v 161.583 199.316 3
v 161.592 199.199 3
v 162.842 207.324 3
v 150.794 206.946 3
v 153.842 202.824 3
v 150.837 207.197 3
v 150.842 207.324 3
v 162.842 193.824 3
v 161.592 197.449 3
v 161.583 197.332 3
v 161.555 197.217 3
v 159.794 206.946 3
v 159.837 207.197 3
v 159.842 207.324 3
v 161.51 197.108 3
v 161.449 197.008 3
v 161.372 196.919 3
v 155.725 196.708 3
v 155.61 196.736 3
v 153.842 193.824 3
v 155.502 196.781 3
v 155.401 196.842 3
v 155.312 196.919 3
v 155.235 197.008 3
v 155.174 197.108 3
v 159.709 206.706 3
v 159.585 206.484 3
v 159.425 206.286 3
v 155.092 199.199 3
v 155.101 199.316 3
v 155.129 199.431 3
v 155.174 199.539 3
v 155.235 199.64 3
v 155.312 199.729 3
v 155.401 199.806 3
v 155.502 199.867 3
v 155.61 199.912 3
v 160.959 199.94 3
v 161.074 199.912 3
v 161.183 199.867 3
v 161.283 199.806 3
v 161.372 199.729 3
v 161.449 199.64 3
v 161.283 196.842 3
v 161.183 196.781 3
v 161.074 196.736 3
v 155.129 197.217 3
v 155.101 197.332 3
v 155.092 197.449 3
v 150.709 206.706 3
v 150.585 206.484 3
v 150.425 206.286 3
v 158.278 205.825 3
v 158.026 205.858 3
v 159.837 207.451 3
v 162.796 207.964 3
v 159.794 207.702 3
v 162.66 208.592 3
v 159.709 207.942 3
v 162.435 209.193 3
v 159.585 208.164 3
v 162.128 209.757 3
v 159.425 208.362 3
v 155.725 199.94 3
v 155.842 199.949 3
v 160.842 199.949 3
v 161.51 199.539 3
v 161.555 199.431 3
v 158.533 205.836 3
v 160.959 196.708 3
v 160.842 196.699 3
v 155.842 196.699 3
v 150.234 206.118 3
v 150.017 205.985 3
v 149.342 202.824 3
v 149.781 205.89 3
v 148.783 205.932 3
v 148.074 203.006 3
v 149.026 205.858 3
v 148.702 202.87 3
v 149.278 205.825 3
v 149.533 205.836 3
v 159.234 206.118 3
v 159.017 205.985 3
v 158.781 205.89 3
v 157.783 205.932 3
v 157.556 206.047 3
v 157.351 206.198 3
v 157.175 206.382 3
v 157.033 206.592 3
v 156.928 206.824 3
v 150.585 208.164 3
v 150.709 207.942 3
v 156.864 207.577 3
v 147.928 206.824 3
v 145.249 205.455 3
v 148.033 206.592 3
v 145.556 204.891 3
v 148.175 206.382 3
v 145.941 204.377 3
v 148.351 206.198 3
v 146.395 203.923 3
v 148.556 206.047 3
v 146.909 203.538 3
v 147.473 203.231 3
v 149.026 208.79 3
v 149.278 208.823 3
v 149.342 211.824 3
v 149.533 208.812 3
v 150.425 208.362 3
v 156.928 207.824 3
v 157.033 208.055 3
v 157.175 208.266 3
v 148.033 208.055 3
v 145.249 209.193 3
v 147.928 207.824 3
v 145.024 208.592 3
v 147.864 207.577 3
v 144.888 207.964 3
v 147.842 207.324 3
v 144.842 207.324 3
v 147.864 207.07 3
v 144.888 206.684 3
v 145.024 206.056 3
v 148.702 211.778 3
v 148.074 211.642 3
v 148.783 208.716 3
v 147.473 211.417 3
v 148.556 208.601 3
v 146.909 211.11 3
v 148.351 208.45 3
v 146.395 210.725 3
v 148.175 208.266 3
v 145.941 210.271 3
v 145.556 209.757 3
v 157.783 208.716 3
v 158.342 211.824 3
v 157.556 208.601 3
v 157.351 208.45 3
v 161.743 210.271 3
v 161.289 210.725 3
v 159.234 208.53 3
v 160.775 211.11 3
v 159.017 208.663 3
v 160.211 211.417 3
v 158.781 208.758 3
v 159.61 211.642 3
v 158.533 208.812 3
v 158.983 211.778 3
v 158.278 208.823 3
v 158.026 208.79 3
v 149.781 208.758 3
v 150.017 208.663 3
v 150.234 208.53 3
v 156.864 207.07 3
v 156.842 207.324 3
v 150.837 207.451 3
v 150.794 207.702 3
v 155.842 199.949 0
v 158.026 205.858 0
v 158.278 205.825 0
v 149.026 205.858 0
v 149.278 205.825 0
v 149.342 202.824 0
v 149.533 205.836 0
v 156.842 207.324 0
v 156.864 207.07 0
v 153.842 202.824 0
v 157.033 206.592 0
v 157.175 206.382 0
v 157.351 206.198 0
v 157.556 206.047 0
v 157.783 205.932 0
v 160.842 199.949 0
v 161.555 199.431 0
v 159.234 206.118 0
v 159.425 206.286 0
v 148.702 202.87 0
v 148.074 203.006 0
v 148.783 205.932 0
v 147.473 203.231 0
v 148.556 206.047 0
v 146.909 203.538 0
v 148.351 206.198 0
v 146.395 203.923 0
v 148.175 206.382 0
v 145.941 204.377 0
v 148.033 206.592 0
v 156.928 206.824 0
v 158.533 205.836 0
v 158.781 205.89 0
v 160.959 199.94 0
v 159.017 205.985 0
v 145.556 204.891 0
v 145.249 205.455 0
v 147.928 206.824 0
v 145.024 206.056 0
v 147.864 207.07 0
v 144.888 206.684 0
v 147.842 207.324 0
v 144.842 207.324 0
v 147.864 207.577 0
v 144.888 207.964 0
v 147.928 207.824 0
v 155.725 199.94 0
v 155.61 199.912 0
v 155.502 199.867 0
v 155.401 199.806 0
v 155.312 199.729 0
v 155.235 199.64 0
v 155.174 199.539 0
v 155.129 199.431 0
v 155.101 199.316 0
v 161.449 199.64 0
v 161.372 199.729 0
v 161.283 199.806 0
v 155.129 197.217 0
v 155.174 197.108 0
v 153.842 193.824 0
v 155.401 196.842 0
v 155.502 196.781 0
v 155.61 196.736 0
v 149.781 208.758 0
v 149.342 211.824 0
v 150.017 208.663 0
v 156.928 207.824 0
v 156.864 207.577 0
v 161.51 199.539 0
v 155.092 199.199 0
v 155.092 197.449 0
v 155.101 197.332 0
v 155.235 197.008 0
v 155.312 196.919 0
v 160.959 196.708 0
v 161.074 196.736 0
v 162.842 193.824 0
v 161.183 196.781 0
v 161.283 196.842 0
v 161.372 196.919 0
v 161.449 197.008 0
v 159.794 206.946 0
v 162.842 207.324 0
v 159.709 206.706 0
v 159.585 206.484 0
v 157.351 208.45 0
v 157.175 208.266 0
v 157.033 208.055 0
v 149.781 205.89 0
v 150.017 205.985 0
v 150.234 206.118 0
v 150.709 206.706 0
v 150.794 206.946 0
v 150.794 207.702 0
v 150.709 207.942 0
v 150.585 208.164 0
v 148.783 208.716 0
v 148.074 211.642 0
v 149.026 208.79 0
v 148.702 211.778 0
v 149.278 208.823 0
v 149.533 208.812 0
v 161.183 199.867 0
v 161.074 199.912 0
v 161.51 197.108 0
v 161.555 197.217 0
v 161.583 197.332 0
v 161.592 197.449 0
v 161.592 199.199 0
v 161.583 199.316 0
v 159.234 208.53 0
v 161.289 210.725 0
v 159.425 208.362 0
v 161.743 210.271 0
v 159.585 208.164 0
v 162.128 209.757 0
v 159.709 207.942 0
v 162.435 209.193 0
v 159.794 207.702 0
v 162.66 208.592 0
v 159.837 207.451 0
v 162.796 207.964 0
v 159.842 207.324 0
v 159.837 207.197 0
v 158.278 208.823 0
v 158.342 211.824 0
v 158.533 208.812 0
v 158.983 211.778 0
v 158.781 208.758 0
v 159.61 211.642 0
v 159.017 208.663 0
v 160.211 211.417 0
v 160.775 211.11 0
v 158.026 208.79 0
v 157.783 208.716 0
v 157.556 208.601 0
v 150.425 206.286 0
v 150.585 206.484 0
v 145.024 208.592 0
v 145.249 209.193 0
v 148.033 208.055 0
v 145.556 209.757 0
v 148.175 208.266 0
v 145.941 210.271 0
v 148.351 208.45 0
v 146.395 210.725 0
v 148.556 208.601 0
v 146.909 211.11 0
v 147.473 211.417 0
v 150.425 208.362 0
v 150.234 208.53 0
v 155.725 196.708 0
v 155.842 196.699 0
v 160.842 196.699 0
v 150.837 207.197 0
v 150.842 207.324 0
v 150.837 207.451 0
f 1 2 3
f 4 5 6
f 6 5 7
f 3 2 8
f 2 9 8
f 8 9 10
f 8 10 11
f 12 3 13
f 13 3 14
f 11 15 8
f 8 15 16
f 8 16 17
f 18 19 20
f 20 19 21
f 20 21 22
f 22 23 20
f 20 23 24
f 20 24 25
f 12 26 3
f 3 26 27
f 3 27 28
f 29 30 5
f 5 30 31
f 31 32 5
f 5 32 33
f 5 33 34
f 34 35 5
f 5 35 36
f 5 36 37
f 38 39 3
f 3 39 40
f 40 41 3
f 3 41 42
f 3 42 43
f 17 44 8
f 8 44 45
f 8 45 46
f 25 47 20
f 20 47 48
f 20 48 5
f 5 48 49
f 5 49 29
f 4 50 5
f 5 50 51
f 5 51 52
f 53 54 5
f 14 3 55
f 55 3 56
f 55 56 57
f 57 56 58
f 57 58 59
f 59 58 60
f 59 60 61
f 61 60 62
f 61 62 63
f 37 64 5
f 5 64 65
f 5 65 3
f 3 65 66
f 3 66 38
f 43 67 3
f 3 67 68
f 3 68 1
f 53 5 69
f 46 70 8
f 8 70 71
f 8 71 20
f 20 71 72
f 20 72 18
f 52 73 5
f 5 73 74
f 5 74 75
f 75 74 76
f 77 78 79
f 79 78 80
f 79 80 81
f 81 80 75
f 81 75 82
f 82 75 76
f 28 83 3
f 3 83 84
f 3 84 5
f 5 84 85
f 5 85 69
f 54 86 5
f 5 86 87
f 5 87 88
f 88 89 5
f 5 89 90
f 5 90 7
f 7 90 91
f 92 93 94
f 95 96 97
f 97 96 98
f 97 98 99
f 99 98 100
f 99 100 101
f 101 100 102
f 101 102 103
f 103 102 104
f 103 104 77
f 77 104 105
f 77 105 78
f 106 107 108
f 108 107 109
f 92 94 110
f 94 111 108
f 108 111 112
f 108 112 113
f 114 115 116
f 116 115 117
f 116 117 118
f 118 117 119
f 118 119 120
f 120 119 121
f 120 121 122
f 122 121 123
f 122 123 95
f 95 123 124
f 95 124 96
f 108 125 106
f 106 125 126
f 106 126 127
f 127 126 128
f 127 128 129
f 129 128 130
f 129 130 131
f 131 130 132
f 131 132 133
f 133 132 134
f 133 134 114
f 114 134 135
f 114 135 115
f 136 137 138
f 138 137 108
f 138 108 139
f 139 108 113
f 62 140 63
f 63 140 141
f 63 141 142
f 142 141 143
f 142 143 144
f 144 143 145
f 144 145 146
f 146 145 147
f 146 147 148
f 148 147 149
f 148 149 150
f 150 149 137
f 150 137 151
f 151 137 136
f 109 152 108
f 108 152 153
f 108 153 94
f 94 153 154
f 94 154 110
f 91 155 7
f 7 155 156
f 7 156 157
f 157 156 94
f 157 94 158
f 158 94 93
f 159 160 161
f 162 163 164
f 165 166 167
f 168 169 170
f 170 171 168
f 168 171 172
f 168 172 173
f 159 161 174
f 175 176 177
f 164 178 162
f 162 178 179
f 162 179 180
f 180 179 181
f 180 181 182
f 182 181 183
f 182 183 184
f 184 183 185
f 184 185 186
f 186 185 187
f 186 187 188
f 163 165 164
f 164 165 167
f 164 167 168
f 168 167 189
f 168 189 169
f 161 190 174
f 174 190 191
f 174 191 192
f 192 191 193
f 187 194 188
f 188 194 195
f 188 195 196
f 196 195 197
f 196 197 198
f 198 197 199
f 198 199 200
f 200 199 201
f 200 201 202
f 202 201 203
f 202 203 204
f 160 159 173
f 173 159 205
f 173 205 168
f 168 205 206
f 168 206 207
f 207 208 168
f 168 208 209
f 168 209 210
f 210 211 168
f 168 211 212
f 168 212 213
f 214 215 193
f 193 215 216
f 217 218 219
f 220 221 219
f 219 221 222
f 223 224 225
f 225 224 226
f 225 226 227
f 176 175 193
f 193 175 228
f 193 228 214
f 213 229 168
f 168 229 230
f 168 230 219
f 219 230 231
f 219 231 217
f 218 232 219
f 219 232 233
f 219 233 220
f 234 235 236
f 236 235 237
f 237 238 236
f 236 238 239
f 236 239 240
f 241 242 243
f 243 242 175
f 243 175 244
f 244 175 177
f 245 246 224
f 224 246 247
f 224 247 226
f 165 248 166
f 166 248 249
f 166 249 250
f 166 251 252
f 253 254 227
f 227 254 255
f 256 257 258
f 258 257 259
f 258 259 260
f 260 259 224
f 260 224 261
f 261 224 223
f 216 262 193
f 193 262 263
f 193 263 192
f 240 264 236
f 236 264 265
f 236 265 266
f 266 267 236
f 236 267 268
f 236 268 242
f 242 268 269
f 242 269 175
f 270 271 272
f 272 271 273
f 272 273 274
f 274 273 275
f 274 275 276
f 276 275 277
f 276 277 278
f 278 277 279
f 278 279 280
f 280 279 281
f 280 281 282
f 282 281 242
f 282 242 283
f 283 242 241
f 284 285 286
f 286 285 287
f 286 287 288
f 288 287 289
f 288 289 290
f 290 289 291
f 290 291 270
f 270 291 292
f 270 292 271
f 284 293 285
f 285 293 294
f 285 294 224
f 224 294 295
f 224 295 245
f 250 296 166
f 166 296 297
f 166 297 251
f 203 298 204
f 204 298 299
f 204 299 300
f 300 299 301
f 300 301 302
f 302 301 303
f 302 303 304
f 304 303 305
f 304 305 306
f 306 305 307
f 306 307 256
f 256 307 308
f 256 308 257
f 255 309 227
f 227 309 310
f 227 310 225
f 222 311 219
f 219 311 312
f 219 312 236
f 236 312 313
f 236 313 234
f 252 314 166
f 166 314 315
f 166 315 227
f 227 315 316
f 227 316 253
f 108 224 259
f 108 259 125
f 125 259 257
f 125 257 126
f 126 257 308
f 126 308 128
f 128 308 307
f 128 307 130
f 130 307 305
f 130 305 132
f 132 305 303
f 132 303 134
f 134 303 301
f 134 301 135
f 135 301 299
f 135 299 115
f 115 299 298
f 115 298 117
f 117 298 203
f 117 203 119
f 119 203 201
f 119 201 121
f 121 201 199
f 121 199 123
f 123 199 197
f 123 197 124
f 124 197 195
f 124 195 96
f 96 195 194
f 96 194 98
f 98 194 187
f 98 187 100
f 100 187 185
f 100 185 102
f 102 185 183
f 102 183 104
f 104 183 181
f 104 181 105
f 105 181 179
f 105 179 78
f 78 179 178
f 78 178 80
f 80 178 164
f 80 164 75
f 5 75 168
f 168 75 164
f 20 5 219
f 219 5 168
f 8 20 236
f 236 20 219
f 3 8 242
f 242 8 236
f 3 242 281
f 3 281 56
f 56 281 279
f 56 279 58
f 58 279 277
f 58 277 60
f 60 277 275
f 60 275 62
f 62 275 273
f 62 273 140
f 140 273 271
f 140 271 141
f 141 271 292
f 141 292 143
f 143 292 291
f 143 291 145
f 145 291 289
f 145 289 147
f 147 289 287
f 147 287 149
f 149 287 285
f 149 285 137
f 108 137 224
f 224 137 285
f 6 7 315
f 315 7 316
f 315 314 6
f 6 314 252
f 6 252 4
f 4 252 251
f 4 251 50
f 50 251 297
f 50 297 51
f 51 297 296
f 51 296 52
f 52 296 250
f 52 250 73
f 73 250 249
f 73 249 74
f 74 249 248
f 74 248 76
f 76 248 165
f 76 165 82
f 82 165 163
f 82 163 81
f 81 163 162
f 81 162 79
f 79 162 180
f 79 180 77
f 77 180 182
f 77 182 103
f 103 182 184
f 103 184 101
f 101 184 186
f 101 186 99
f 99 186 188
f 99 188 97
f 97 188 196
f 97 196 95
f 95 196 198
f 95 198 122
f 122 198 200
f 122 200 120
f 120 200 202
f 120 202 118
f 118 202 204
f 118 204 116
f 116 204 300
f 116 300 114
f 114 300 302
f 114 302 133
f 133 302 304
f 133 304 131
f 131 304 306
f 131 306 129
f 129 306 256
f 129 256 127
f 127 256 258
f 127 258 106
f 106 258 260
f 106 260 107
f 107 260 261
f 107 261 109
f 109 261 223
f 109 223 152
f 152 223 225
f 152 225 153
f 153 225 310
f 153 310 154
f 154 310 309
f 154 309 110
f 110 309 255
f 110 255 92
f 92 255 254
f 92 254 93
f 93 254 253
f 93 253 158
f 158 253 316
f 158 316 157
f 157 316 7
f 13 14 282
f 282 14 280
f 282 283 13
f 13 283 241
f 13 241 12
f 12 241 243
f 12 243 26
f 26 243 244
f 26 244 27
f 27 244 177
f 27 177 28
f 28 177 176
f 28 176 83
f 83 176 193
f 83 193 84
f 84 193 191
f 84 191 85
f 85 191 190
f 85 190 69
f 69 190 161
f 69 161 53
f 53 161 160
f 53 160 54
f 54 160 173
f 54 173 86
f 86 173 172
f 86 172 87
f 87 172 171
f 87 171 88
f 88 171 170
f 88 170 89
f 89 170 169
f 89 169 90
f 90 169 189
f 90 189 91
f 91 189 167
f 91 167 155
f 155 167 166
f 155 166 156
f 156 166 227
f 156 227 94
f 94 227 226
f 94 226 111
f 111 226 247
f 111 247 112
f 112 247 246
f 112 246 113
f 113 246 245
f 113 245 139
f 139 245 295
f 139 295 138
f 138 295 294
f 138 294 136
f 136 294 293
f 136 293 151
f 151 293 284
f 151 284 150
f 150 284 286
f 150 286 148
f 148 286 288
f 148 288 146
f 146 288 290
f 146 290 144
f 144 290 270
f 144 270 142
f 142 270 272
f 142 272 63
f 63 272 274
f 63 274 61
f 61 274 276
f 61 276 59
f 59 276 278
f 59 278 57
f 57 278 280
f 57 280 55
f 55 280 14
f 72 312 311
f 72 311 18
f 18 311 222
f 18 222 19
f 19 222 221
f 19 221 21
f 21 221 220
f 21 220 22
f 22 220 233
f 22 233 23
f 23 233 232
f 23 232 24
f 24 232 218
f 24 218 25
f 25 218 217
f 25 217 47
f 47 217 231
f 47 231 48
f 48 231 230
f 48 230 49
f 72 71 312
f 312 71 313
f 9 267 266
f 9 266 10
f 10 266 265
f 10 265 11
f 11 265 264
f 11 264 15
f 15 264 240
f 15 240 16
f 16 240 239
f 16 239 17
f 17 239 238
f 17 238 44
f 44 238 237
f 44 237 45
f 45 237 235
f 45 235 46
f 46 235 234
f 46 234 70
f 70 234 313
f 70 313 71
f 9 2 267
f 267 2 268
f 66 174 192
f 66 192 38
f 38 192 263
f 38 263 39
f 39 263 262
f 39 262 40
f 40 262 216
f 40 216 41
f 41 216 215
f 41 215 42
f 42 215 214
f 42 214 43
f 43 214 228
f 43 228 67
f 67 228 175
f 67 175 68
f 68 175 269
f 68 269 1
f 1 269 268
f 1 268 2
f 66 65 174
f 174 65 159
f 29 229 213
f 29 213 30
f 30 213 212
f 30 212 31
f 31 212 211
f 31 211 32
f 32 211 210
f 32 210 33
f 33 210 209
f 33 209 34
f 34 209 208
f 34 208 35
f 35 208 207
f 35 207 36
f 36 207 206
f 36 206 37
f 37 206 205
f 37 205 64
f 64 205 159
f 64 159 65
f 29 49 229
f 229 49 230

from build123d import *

# Parameters (mm, degrees)
MODEL_R                 = 1.5
SALIENTE_EXTRUIR1_DEPTH = 3


with BuildPart() as part:
    # Model → Saliente-Extruir1 (new body)
    with BuildSketch(Plane.XY):
        with BuildLine():
            Line((149.34213351, 211.823953209), (158.34213351, 211.823953209))
            ThreePointArc((158.34213351, 211.823953209), (161.524114025, 210.505933724), (162.84213351, 207.323953209))
            Line((162.84213351, 207.323953209), (162.84213351, 193.823953209))
            Line((162.84213351, 193.823953209), (153.84213351, 193.823953209))
            Line((153.84213351, 193.823953209), (153.84213351, 202.823953209))
            Line((153.84213351, 202.823953209), (149.34213351, 202.823953209))
            ThreePointArc((149.34213351, 202.823953209), (144.84213351, 207.323953209), (149.34213351, 211.823953209))
        make_face()
        with Locations((149.34213351, 207.323953209)):
            Circle(MODEL_R, mode=Mode.SUBTRACT)
        with Locations((158.34213351, 207.323953209)):
            Circle(MODEL_R, mode=Mode.SUBTRACT)
        with BuildLine():
            Line((160.84213351, 196.698953209), (155.84213351, 196.698953209))
            ThreePointArc((155.84213351, 196.698953209), (155.311803424, 196.918623123), (155.09213351, 197.448953209))
            Line((155.09213351, 197.448953209), (155.09213351, 199.198953209))
            ThreePointArc((155.09213351, 199.198953209), (155.311803424, 199.729283295), (155.84213351, 199.948953209))
            Line((155.84213351, 199.948953209), (160.84213351, 199.948953209))
            ThreePointArc((160.84213351, 199.948953209), (161.372463595, 199.729283295), (161.59213351, 199.198953209))
            Line((161.59213351, 199.198953209), (161.59213351, 197.448953209))
            ThreePointArc((161.59213351, 197.448953209), (161.372463595, 196.918623123), (160.84213351, 196.698953209))
        make_face(mode=Mode.SUBTRACT)
    extrude(amount=SALIENTE_EXTRUIR1_DEPTH)


solid = part.part
